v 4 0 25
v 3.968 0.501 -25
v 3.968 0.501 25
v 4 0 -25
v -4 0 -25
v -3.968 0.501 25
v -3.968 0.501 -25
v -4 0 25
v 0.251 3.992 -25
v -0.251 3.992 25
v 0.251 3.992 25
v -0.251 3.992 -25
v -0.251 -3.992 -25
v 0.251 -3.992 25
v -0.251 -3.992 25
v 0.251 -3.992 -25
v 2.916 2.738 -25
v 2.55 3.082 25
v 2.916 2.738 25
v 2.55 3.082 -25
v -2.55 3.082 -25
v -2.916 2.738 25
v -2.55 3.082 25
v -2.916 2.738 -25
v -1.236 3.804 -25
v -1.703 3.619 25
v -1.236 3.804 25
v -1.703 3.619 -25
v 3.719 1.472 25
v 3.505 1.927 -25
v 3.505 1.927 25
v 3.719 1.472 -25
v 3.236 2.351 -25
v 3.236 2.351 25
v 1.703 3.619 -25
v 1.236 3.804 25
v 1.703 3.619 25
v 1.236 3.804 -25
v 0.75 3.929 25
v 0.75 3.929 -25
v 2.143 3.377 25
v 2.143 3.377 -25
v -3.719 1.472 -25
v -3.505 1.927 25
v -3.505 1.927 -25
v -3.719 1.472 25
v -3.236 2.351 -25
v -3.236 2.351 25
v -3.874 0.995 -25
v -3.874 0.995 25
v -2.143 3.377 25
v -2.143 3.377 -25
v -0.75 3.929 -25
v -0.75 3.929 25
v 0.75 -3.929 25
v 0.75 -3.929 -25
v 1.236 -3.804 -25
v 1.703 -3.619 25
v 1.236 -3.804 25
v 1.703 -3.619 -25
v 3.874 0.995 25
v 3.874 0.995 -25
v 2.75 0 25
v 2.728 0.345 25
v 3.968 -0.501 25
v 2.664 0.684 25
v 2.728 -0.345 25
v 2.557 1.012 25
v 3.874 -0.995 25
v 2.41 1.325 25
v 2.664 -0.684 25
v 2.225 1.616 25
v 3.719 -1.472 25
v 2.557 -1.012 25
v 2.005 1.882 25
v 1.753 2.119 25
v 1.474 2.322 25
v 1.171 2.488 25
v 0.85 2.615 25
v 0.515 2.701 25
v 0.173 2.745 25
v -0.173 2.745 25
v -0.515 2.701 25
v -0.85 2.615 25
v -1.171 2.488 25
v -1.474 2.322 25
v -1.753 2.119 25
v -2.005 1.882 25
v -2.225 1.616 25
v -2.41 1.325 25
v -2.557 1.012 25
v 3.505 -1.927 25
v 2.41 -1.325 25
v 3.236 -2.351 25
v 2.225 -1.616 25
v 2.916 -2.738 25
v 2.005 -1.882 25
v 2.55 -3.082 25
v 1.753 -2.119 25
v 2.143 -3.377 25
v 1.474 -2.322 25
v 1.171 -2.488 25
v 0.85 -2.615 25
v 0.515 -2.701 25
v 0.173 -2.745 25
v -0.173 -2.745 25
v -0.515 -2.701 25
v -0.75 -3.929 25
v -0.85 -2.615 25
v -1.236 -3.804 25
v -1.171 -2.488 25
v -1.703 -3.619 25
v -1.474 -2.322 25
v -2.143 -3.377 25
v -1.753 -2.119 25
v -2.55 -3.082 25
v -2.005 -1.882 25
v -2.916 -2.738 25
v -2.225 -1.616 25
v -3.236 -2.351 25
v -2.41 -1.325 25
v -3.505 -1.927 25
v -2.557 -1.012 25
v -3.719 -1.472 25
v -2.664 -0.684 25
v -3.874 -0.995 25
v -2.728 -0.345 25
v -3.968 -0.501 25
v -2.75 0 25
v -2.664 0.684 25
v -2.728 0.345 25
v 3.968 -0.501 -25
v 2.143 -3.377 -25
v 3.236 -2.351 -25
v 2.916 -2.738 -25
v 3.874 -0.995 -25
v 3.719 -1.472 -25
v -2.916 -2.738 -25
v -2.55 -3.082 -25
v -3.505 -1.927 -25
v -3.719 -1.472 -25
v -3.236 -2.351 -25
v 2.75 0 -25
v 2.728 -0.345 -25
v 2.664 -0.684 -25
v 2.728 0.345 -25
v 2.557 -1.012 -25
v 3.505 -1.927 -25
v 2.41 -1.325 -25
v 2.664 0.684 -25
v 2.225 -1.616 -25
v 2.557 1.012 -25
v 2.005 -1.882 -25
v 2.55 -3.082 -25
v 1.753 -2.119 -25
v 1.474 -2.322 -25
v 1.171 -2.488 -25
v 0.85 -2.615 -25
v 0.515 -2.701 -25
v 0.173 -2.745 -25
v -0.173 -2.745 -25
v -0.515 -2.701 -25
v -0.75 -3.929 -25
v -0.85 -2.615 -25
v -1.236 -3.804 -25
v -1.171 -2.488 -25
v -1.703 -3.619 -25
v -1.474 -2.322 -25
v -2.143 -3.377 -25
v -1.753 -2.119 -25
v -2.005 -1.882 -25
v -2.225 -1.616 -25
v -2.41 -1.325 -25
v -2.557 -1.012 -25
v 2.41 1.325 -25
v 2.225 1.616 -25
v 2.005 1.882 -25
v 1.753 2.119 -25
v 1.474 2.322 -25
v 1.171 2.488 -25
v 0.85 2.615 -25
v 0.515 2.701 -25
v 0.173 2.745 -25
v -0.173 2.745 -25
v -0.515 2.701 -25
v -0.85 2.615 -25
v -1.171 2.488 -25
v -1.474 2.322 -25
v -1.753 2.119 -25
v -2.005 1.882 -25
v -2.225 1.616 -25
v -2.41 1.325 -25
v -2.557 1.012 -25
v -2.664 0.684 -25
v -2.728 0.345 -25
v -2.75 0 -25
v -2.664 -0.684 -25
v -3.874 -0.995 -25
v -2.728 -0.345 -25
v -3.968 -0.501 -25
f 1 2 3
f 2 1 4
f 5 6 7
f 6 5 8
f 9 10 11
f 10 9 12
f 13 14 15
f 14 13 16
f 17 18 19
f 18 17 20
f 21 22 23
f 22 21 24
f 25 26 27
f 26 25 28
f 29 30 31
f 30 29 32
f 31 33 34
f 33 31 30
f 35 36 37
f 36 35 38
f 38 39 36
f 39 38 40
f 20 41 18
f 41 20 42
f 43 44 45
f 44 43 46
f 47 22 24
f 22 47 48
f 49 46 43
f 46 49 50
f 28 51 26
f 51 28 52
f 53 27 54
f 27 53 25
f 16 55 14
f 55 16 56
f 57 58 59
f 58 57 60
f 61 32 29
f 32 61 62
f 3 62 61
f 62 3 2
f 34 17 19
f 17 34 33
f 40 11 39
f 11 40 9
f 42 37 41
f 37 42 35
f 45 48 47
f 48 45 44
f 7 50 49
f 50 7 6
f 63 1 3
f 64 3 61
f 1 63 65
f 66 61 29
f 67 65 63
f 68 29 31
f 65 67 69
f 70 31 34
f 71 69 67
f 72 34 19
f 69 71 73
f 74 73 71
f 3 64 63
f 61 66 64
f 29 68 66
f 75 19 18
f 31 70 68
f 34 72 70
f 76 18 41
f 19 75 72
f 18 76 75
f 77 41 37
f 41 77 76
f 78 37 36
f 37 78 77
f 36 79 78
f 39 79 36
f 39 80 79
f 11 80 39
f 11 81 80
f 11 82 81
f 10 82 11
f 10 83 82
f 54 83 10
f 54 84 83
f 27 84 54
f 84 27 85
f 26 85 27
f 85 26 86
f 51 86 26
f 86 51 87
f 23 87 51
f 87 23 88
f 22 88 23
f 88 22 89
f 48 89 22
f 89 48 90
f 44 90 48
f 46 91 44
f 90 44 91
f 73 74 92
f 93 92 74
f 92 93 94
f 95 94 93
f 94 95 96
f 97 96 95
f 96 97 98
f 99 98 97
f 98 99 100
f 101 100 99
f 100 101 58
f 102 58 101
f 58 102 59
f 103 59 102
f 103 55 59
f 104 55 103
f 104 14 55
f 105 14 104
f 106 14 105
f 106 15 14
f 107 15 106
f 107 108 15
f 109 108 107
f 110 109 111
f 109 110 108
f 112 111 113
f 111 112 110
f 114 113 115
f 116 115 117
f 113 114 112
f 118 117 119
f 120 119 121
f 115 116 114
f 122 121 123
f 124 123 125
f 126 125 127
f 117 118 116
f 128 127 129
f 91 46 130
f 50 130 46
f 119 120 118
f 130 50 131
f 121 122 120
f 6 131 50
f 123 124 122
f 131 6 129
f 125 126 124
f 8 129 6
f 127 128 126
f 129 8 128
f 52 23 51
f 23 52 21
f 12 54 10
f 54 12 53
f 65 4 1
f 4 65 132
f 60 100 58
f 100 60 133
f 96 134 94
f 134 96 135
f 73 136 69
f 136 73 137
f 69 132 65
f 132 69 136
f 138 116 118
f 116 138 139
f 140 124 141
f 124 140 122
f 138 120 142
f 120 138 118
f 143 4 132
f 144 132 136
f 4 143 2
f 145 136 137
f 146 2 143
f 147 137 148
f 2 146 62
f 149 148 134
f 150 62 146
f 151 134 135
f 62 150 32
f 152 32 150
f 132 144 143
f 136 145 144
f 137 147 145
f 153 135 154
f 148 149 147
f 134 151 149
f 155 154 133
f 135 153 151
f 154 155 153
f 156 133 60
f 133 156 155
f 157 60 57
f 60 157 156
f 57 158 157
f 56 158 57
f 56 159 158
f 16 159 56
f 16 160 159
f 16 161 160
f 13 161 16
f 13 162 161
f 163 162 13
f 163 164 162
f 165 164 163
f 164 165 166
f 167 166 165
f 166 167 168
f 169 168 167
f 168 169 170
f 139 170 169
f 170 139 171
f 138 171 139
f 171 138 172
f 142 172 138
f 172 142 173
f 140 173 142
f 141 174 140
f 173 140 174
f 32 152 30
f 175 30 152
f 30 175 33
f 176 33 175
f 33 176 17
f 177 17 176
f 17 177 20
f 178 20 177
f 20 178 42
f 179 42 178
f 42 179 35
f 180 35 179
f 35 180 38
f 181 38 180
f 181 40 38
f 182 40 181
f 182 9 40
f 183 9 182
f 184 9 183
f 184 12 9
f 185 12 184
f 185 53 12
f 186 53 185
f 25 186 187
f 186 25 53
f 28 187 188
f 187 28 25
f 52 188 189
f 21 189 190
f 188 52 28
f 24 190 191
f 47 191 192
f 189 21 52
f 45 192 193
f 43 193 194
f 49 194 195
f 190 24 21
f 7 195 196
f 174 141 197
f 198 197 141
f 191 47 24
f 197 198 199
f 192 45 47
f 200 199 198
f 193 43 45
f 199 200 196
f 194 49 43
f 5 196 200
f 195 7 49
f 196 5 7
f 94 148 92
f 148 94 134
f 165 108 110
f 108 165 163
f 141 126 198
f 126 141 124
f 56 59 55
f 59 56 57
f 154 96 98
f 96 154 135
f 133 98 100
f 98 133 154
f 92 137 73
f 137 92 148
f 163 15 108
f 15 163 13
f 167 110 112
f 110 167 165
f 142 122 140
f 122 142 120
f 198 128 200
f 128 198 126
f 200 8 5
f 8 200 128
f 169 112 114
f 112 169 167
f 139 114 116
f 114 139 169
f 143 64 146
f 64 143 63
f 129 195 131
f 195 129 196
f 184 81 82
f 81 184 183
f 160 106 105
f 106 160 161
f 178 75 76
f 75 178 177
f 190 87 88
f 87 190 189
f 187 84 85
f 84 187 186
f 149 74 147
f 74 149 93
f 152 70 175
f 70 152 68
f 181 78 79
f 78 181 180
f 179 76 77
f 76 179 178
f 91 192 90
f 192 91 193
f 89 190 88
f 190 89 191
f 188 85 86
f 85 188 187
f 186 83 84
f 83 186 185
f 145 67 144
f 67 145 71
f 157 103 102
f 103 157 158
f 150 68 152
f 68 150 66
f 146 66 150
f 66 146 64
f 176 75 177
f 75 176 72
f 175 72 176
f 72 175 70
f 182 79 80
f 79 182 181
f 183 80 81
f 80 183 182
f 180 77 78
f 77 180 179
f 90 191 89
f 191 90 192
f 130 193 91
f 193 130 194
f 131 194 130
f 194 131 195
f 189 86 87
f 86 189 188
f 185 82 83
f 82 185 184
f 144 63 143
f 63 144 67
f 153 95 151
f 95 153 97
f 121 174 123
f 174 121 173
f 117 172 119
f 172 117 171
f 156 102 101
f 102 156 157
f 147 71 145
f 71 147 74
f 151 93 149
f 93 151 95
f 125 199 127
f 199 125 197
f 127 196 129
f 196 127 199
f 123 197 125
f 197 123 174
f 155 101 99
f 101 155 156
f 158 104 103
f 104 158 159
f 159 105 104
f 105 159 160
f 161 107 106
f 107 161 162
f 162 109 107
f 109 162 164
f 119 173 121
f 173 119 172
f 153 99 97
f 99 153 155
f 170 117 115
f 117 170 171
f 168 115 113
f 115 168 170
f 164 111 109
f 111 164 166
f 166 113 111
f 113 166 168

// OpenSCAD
$fn = 50;


difference() {
	union() {
		translate(v = [0, 0, -25.0000000000]) {
			cylinder(h = 50, r = 4.0000000000);
		}
	}
	union() {
		translate(v = [0, 0, -100.0000000000]) {
			cylinder(h = 200, r = 2.7500000000);
		}
	}
}
